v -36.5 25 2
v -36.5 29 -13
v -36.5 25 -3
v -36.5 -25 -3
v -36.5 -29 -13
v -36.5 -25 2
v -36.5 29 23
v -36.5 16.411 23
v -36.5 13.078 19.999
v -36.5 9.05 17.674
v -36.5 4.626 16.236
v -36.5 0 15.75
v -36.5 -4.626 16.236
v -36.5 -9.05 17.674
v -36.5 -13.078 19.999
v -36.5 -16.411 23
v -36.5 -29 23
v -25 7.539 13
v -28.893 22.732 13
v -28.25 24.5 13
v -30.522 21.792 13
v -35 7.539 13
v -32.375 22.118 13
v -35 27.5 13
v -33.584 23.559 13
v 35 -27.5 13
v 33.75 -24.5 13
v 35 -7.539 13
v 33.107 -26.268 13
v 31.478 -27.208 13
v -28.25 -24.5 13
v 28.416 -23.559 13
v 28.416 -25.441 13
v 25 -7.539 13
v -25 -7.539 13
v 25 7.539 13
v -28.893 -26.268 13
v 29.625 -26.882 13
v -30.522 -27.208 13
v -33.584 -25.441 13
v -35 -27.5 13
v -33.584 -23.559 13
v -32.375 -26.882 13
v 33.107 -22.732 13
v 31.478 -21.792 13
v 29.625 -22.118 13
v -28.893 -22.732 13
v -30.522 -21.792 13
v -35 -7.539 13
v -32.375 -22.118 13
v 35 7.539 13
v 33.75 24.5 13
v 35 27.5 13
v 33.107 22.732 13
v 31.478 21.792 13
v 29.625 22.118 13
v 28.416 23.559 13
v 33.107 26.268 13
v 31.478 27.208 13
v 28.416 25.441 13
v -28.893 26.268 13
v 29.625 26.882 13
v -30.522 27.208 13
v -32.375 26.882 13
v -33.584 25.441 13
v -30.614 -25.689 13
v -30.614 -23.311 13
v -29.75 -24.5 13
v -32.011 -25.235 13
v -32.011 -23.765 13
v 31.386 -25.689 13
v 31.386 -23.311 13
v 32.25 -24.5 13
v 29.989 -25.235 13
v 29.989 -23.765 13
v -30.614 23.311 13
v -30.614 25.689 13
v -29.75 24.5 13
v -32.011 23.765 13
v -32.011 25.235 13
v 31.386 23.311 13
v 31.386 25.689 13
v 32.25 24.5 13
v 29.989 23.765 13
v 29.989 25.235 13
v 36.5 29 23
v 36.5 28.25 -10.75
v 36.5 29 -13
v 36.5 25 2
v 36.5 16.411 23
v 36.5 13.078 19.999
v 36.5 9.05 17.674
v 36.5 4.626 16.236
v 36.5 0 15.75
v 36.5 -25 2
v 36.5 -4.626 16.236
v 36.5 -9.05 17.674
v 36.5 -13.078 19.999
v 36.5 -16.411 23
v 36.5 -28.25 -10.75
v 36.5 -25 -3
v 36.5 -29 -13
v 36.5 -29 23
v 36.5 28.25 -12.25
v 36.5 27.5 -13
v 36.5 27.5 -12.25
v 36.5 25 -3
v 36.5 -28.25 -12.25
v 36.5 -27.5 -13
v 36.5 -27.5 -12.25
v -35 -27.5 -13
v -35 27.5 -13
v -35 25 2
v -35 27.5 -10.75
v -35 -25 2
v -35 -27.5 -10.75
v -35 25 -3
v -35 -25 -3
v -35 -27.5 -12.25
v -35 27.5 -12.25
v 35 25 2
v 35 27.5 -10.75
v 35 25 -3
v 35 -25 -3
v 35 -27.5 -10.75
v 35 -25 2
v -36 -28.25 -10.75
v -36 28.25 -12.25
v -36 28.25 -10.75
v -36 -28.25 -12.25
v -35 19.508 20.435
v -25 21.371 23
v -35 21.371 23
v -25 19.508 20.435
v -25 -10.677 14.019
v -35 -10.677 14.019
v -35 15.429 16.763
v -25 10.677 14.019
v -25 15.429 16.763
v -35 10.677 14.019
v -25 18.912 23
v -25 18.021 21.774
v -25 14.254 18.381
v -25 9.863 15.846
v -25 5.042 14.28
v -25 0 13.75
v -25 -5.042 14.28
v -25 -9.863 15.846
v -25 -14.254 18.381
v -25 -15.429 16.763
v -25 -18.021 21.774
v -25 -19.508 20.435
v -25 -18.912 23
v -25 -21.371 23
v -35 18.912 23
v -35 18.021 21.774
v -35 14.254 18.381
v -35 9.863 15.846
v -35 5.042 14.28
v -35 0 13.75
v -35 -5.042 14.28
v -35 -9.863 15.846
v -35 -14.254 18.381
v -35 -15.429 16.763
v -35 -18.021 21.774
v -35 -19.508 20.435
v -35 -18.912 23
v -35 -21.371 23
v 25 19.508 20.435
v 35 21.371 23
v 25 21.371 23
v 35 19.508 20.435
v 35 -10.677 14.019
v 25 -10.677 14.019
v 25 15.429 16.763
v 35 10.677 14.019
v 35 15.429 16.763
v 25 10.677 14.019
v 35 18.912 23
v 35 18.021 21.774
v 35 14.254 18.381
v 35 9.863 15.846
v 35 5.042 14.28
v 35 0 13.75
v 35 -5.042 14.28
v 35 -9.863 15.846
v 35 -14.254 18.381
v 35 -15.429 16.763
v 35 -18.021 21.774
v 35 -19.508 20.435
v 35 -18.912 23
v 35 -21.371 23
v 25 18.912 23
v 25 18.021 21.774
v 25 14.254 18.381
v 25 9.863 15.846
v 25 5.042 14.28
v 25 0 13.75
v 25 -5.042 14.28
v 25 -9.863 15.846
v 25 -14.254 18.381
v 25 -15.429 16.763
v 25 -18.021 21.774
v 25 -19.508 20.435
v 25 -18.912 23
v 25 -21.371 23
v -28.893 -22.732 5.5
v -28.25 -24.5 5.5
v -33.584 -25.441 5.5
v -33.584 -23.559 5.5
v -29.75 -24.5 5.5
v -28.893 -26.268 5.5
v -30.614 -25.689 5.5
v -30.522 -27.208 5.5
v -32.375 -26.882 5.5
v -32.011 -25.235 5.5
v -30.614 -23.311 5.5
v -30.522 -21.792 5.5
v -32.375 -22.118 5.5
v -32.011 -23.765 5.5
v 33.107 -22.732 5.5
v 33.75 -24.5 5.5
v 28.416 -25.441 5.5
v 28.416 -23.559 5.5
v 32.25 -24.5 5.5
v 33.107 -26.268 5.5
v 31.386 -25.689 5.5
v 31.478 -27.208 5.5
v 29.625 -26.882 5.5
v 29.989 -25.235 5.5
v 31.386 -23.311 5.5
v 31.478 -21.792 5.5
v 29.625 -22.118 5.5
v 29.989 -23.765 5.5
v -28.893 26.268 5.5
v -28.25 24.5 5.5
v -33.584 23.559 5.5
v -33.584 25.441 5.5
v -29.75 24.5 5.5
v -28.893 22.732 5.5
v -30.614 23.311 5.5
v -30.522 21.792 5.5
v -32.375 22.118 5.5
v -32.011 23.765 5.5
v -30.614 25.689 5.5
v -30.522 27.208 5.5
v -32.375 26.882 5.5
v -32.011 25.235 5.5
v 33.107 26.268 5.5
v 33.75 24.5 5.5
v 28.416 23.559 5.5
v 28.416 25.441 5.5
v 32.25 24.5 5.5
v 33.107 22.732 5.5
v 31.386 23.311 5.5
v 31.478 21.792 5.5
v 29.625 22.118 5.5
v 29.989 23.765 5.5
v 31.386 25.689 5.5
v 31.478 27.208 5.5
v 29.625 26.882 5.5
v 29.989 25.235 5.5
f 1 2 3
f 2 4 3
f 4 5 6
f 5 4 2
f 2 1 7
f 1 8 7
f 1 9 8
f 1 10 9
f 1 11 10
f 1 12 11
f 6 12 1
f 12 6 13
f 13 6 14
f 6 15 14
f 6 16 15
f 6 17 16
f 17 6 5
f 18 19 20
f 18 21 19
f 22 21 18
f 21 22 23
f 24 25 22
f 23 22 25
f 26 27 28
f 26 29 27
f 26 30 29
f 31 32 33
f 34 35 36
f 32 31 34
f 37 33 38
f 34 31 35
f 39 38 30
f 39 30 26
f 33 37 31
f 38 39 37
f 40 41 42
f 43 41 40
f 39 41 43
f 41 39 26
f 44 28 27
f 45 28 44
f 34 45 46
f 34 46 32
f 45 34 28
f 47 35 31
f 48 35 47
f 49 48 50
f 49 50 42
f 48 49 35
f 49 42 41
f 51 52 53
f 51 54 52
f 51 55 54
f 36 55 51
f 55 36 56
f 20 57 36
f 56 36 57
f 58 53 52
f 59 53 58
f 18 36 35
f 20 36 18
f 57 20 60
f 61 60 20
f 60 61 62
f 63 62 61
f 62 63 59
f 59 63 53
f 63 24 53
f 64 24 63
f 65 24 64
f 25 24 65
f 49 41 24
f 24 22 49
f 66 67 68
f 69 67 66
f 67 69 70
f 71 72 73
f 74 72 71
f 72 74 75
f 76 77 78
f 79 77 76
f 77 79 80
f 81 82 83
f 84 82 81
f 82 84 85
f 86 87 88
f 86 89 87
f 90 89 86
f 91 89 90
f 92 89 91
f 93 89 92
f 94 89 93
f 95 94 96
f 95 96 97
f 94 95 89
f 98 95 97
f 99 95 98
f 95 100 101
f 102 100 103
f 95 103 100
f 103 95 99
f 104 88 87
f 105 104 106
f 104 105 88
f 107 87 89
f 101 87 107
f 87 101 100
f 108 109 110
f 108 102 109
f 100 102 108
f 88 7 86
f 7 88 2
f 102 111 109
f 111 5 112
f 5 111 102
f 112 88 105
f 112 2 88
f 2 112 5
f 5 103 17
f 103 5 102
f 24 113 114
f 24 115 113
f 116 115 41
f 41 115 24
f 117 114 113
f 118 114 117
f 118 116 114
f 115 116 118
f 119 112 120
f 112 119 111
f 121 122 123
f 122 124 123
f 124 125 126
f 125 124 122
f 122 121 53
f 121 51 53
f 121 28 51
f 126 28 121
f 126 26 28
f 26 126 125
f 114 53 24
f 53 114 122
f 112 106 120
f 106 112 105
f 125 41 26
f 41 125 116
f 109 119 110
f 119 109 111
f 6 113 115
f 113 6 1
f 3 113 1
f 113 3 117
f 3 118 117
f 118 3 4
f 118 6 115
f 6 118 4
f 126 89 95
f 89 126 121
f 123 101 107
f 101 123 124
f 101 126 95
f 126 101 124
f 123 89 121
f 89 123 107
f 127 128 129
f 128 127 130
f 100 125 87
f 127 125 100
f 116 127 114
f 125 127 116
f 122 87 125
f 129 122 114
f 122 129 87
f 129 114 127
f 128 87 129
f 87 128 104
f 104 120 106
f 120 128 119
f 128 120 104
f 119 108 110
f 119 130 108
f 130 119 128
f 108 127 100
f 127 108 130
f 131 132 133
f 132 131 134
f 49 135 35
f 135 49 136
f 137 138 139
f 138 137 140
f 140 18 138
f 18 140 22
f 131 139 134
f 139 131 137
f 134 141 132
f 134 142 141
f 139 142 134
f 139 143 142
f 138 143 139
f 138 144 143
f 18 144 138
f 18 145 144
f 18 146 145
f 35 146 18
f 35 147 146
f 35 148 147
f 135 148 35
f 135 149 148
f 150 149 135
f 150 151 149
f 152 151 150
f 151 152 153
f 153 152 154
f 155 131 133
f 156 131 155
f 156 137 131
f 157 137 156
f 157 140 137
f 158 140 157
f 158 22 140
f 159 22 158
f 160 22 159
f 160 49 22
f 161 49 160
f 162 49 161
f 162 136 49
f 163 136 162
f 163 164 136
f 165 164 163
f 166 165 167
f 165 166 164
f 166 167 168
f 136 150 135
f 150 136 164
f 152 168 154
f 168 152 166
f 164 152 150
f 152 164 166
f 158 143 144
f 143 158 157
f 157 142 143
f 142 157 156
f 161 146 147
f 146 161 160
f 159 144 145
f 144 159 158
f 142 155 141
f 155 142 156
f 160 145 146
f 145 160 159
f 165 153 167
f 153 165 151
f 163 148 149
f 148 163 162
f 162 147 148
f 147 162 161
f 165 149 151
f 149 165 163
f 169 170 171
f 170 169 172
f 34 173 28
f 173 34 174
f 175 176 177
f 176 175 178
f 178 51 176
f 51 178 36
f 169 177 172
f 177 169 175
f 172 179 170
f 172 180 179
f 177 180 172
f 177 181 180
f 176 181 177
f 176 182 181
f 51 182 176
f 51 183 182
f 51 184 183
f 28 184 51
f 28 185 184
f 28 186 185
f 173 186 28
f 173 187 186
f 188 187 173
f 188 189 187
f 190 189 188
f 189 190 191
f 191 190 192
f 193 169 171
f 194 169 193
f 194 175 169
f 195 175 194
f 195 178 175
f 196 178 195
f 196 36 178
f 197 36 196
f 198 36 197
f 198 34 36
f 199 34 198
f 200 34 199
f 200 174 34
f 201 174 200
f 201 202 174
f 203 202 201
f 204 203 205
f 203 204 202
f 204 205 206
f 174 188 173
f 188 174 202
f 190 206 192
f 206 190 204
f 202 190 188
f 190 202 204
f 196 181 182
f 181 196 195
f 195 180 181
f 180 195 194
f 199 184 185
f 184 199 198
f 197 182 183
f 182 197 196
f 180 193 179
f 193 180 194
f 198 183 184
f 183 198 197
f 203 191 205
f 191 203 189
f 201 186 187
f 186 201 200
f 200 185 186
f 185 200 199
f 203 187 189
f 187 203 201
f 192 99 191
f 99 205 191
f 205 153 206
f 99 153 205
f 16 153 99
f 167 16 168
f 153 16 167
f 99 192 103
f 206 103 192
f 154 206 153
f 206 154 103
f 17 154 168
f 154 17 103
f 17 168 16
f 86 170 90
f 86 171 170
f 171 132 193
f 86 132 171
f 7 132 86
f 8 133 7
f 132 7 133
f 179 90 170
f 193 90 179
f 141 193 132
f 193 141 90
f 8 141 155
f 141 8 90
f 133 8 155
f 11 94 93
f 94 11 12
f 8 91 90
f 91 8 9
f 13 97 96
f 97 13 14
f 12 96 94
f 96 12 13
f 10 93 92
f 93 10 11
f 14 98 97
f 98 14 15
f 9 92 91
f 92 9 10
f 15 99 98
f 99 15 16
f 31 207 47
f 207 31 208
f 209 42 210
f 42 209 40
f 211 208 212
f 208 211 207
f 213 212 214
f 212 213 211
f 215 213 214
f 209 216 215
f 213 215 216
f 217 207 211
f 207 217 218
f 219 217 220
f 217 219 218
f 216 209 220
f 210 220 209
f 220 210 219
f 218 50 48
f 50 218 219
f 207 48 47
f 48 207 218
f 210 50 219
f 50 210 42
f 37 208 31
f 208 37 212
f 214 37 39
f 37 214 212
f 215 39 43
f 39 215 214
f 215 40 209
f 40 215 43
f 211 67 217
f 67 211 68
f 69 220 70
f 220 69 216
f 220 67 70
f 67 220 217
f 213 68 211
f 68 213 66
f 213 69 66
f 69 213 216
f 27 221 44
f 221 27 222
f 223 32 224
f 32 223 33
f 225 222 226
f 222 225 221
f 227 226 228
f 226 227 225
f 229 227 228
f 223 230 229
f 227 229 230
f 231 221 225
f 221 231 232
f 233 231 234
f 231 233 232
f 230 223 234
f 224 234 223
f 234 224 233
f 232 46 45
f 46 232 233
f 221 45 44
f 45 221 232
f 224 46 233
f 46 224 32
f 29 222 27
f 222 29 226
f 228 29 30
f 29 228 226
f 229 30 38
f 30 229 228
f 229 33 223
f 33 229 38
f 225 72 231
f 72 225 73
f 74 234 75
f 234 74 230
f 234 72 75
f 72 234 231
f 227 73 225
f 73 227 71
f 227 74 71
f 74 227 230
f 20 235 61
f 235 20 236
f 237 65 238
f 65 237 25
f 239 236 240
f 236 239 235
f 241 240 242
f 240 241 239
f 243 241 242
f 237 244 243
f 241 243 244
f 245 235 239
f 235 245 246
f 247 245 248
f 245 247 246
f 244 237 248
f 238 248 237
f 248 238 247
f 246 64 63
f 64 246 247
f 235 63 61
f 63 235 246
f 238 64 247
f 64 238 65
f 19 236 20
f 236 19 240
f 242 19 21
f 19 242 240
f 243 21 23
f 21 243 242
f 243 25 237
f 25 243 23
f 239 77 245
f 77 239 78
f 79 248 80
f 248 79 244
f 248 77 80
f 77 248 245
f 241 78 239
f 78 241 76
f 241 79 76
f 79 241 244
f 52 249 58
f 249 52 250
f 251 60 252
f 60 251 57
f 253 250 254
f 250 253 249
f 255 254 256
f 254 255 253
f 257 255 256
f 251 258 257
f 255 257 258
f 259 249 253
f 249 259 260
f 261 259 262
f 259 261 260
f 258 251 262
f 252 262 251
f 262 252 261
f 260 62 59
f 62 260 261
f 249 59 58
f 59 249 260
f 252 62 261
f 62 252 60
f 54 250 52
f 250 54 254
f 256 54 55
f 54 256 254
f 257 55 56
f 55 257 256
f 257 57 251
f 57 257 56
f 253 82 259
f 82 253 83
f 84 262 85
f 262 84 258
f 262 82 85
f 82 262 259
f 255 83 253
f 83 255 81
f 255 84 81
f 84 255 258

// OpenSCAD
module pcb_board()
{
    color( "LimeGreen", 1.0 ) 
           cube(size = [70 , 55 , 1.65] , center = true);
    
}
module screw_hole()
{
   difference() 
    {
         cylinder(9,2.75,2.75, true );
         cylinder(12.5,1.25,1.25, true); 
    }   
}


module strap_hole()
{
   difference() 
    {
         cylinder(r = 26.25, h = 10, center = false);
         cylinder(r = 24.25, h = 12, center = false);
    }   
}
module cozy_linear_actuator_board_case(wall_thickness=1, inside_size_x=20,inside_size_y=20,height=26,side=10)
{
    
    difference() 
    {
       cube([inside_size_x+wall_thickness, inside_size_y+wall_thickness, height], center = true);
       cube([inside_size_x, inside_size_y, height+2], center = true);
        
        //dsub connector
       //translate([inside_size_x/2+2, 0, -3])rotate([0,270,0])dsub(1.1,17.04,1);
        
        //cut the hole for the connector 
       translate([-inside_size_x/2-5.5, -25, -3])cube([7,50,5]);
        
        //cut the hole for the connector 
       translate([inside_size_x/2-5.5, -25, -3])cube([7,50,5]);
      
       //cut a hole for the lid  
       translate([3, 0, -height/2+1.5])cube([inside_size_x+wall_thickness+5, inside_size_y+wall_thickness-1.5, 1.5], center = true);
        
       //cut the lip of the hole for the lid
        
      translate([3, 0, -height/2])cube([inside_size_x+wall_thickness, inside_size_y+wall_thickness-3, 2.5], center = true); 
    }
     
    
    difference() 
    {
     translate([0, 0, height/2+5])
        
     //base of the case   
     cube([inside_size_x+wall_thickness, inside_size_y+wall_thickness, wall_thickness+7], center = true);
     //cut holes for screws
     //translate([inside_size_x/2+side/2+1, inside_size_y/2-5, 0])cylinder(15,2.75,2.75, false);
     //translate([inside_size_x/2+side/2+1, -inside_size_y/2+5, 0])cylinder(15,2.75,2.75, false);
     //translate([-inside_size_x/2-side/2-1,inside_size_y/2-5, 0])cylinder(15,2.75,2.75, false);
     //translate([-inside_size_x/2-side/2-1,-inside_size_y/2+5, 0])cylinder(15,2.75,2.75, false);
        
     translate([-35, 0, height+12])rotate(a=[0,90,0])strap_hole();
     translate([25, 0, height+12])rotate(a=[0,90,0])strap_hole();
     translate([-60, 0, height+12])rotate(a=[0,90,0])cylinder(r = 22.25, h = 150, center = false);
    }
    
    
    
    //pcb standoff and hole 
    translate([-inside_size_x/2+side/2-1, -inside_size_y/2+3, height/2-3])screw_hole();
    translate([inside_size_x/2-side/2+1, -inside_size_y/2+3, height/2-3])screw_hole();
    
   translate([-inside_size_x/2+side/2-1, inside_size_y/2-3, height/2-3])screw_hole();
    translate([inside_size_x/2-side/2+1, inside_size_y/2-3, height/2-3])screw_hole();
   
}


cozy_linear_actuator_board_case(3,70,55);

//pcb size is 57.46 X35.84
 //pcb_board();

//strap_hole();
